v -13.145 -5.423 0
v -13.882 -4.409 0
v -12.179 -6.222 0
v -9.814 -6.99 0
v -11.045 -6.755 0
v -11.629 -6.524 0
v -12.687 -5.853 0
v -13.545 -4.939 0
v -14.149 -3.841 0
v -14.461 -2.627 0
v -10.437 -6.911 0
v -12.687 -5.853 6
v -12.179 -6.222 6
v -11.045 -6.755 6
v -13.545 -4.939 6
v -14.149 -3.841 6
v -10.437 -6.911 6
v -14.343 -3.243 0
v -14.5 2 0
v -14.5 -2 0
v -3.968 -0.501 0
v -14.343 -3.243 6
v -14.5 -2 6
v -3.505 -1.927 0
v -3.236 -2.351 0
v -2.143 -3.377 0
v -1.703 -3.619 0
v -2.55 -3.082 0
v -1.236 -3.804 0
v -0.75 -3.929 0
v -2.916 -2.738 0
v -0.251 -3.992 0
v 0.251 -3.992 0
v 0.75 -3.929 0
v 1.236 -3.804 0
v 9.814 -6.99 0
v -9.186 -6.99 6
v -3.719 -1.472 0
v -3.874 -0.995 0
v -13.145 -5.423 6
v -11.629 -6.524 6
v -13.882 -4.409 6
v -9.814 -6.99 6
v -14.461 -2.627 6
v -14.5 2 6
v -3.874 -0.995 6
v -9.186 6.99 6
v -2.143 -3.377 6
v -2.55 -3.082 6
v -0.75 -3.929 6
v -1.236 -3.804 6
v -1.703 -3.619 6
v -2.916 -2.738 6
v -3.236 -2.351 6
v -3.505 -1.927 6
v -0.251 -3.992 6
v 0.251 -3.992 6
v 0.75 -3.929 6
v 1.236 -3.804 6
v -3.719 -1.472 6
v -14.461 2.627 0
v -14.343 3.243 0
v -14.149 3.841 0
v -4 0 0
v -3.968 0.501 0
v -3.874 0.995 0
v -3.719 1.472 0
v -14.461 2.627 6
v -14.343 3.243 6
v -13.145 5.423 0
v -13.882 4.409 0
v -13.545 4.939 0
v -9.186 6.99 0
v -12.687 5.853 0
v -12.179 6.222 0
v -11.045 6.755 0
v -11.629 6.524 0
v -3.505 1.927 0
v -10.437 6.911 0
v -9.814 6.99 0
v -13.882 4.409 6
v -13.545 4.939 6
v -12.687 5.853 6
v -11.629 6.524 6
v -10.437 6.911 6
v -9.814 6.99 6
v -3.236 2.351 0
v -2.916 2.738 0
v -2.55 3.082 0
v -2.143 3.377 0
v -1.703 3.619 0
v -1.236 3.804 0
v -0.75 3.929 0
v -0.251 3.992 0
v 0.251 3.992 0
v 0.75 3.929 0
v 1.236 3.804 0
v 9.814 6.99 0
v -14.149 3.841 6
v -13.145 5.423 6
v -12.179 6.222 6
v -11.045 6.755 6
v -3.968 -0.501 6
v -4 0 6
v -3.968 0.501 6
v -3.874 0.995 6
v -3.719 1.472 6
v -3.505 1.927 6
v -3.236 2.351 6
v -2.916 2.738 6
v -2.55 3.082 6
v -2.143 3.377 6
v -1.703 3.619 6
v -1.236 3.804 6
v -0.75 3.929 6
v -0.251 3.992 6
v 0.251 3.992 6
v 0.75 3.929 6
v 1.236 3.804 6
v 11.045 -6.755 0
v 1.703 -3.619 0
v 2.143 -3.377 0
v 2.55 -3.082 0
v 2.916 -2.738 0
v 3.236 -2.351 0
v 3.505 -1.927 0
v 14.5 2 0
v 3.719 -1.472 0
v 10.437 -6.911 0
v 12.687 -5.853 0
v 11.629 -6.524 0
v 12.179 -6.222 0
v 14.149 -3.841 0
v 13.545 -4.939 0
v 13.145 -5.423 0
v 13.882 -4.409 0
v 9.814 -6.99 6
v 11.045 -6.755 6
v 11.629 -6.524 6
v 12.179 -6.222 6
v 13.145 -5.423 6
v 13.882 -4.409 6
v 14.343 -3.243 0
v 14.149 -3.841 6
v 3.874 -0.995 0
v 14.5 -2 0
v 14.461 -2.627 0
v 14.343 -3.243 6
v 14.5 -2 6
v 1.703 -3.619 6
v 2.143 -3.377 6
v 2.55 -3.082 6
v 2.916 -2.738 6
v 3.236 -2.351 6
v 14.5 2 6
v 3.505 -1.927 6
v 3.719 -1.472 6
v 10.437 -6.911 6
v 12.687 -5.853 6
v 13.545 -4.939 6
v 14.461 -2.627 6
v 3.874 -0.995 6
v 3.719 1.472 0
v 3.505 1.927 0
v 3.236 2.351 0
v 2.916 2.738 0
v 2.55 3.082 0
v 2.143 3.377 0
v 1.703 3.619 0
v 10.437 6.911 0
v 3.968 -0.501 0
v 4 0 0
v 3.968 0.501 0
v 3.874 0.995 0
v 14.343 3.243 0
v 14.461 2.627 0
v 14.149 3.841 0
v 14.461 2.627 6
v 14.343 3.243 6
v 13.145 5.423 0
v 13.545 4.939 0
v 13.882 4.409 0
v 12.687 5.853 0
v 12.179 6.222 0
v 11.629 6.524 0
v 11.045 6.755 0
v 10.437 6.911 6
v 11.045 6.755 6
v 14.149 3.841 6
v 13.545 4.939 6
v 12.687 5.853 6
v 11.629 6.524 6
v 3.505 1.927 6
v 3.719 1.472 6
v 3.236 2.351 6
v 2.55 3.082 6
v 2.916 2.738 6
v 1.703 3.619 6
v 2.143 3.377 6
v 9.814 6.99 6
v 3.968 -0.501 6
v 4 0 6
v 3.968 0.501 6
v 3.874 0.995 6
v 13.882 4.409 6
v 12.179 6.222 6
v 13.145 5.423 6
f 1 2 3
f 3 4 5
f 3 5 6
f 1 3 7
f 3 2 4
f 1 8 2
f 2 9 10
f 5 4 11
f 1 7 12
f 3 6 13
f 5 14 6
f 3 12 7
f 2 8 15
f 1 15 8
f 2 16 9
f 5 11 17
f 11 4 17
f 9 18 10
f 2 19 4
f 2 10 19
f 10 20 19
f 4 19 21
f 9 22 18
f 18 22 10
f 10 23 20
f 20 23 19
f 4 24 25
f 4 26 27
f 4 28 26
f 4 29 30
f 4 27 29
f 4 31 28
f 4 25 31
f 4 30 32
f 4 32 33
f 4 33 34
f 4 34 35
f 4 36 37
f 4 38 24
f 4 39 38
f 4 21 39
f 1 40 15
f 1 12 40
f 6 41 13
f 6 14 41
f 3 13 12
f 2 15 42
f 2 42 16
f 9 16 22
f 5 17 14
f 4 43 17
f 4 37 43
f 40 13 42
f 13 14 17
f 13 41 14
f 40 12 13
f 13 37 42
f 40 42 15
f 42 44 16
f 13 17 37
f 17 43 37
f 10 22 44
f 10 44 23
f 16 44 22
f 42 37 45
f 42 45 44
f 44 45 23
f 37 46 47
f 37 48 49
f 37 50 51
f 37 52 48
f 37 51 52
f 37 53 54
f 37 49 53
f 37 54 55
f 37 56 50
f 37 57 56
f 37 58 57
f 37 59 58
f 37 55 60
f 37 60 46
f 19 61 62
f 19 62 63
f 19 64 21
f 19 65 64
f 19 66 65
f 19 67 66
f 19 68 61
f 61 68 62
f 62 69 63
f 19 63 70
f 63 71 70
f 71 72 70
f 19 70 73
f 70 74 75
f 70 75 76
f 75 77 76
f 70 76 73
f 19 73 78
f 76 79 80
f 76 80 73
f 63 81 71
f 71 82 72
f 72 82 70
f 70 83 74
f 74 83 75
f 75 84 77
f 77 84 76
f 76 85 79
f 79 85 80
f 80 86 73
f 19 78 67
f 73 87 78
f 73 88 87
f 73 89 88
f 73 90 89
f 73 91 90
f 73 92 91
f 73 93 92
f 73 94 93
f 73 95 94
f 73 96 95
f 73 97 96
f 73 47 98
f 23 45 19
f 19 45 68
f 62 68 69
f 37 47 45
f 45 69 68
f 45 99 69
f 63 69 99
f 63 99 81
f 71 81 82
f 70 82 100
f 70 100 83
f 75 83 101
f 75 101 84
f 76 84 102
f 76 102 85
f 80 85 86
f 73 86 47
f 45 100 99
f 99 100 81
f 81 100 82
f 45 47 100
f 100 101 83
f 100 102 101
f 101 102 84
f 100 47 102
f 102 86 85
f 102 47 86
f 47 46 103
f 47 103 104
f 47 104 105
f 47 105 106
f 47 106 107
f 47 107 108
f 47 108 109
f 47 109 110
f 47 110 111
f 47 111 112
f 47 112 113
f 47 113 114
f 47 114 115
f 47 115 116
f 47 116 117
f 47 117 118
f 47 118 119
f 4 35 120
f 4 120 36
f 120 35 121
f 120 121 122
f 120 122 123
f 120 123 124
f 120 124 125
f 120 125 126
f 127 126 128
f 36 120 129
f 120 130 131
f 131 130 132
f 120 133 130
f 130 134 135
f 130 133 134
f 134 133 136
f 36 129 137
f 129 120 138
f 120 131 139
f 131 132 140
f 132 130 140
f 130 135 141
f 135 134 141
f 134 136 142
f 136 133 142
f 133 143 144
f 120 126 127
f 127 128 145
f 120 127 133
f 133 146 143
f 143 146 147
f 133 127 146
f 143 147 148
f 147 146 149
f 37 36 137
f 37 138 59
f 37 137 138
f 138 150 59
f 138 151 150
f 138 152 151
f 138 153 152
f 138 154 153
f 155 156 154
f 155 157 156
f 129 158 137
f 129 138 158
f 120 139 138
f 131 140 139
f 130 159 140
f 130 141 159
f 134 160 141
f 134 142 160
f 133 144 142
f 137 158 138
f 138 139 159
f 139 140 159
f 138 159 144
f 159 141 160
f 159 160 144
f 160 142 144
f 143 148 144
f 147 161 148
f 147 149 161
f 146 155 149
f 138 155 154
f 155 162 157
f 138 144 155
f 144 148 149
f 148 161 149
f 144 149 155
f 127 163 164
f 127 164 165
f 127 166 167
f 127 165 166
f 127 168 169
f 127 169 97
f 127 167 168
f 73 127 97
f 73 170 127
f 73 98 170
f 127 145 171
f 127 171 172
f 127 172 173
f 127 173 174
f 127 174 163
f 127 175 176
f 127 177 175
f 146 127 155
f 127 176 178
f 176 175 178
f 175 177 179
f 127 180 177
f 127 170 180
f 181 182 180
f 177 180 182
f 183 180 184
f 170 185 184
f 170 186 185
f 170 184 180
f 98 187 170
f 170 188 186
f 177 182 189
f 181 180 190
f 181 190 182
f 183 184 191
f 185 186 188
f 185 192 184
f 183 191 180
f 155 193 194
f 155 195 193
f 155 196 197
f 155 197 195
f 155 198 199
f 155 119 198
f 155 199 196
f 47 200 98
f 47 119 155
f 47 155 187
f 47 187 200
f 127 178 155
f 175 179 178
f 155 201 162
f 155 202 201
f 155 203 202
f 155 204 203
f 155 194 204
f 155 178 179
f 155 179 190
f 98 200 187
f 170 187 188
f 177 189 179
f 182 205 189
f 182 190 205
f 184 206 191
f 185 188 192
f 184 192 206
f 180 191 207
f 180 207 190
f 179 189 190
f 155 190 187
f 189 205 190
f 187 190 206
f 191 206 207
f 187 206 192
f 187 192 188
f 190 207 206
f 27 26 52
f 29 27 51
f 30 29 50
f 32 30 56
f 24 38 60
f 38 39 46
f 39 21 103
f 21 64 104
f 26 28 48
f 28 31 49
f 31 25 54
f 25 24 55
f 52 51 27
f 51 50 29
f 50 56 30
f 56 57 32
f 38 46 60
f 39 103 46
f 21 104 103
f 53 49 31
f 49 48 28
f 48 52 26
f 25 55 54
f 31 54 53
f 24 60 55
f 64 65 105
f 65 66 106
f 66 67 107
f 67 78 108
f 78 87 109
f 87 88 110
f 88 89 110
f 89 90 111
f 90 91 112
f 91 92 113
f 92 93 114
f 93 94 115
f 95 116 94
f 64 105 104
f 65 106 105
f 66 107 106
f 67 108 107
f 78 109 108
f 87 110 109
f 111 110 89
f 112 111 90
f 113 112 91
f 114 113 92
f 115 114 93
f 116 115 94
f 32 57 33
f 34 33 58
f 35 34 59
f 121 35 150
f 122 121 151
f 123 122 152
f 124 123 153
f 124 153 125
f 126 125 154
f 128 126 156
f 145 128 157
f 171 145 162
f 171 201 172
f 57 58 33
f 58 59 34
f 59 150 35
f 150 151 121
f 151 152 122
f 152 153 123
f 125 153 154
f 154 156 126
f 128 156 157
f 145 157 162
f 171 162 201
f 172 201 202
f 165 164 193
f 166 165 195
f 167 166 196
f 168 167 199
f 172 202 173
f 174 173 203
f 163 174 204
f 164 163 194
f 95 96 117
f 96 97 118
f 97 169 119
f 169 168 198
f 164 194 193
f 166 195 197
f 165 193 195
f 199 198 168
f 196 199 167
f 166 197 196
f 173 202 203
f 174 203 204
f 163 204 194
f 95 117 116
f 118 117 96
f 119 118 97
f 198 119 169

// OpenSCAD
$fn = 50;

difference() {
	union() {
		hull() {
			translate(v = [-9.5, 2.0, 0]) {
				cylinder(h = 6, r = 5);
			}
			translate(v = [9.5, 2.0, 0]) {
				cylinder(h = 6, r = 5);
			}
			translate(v = [-9.5, -2.0, 0]) {
				cylinder(h = 6, r = 5);
			}
			translate(v = [9.5, -2.0, 0]) {
				cylinder(h = 6, r = 5);
			}
		}
	}
	union() {
		cylinder(h = 6, r = 4.0);
	}
}
